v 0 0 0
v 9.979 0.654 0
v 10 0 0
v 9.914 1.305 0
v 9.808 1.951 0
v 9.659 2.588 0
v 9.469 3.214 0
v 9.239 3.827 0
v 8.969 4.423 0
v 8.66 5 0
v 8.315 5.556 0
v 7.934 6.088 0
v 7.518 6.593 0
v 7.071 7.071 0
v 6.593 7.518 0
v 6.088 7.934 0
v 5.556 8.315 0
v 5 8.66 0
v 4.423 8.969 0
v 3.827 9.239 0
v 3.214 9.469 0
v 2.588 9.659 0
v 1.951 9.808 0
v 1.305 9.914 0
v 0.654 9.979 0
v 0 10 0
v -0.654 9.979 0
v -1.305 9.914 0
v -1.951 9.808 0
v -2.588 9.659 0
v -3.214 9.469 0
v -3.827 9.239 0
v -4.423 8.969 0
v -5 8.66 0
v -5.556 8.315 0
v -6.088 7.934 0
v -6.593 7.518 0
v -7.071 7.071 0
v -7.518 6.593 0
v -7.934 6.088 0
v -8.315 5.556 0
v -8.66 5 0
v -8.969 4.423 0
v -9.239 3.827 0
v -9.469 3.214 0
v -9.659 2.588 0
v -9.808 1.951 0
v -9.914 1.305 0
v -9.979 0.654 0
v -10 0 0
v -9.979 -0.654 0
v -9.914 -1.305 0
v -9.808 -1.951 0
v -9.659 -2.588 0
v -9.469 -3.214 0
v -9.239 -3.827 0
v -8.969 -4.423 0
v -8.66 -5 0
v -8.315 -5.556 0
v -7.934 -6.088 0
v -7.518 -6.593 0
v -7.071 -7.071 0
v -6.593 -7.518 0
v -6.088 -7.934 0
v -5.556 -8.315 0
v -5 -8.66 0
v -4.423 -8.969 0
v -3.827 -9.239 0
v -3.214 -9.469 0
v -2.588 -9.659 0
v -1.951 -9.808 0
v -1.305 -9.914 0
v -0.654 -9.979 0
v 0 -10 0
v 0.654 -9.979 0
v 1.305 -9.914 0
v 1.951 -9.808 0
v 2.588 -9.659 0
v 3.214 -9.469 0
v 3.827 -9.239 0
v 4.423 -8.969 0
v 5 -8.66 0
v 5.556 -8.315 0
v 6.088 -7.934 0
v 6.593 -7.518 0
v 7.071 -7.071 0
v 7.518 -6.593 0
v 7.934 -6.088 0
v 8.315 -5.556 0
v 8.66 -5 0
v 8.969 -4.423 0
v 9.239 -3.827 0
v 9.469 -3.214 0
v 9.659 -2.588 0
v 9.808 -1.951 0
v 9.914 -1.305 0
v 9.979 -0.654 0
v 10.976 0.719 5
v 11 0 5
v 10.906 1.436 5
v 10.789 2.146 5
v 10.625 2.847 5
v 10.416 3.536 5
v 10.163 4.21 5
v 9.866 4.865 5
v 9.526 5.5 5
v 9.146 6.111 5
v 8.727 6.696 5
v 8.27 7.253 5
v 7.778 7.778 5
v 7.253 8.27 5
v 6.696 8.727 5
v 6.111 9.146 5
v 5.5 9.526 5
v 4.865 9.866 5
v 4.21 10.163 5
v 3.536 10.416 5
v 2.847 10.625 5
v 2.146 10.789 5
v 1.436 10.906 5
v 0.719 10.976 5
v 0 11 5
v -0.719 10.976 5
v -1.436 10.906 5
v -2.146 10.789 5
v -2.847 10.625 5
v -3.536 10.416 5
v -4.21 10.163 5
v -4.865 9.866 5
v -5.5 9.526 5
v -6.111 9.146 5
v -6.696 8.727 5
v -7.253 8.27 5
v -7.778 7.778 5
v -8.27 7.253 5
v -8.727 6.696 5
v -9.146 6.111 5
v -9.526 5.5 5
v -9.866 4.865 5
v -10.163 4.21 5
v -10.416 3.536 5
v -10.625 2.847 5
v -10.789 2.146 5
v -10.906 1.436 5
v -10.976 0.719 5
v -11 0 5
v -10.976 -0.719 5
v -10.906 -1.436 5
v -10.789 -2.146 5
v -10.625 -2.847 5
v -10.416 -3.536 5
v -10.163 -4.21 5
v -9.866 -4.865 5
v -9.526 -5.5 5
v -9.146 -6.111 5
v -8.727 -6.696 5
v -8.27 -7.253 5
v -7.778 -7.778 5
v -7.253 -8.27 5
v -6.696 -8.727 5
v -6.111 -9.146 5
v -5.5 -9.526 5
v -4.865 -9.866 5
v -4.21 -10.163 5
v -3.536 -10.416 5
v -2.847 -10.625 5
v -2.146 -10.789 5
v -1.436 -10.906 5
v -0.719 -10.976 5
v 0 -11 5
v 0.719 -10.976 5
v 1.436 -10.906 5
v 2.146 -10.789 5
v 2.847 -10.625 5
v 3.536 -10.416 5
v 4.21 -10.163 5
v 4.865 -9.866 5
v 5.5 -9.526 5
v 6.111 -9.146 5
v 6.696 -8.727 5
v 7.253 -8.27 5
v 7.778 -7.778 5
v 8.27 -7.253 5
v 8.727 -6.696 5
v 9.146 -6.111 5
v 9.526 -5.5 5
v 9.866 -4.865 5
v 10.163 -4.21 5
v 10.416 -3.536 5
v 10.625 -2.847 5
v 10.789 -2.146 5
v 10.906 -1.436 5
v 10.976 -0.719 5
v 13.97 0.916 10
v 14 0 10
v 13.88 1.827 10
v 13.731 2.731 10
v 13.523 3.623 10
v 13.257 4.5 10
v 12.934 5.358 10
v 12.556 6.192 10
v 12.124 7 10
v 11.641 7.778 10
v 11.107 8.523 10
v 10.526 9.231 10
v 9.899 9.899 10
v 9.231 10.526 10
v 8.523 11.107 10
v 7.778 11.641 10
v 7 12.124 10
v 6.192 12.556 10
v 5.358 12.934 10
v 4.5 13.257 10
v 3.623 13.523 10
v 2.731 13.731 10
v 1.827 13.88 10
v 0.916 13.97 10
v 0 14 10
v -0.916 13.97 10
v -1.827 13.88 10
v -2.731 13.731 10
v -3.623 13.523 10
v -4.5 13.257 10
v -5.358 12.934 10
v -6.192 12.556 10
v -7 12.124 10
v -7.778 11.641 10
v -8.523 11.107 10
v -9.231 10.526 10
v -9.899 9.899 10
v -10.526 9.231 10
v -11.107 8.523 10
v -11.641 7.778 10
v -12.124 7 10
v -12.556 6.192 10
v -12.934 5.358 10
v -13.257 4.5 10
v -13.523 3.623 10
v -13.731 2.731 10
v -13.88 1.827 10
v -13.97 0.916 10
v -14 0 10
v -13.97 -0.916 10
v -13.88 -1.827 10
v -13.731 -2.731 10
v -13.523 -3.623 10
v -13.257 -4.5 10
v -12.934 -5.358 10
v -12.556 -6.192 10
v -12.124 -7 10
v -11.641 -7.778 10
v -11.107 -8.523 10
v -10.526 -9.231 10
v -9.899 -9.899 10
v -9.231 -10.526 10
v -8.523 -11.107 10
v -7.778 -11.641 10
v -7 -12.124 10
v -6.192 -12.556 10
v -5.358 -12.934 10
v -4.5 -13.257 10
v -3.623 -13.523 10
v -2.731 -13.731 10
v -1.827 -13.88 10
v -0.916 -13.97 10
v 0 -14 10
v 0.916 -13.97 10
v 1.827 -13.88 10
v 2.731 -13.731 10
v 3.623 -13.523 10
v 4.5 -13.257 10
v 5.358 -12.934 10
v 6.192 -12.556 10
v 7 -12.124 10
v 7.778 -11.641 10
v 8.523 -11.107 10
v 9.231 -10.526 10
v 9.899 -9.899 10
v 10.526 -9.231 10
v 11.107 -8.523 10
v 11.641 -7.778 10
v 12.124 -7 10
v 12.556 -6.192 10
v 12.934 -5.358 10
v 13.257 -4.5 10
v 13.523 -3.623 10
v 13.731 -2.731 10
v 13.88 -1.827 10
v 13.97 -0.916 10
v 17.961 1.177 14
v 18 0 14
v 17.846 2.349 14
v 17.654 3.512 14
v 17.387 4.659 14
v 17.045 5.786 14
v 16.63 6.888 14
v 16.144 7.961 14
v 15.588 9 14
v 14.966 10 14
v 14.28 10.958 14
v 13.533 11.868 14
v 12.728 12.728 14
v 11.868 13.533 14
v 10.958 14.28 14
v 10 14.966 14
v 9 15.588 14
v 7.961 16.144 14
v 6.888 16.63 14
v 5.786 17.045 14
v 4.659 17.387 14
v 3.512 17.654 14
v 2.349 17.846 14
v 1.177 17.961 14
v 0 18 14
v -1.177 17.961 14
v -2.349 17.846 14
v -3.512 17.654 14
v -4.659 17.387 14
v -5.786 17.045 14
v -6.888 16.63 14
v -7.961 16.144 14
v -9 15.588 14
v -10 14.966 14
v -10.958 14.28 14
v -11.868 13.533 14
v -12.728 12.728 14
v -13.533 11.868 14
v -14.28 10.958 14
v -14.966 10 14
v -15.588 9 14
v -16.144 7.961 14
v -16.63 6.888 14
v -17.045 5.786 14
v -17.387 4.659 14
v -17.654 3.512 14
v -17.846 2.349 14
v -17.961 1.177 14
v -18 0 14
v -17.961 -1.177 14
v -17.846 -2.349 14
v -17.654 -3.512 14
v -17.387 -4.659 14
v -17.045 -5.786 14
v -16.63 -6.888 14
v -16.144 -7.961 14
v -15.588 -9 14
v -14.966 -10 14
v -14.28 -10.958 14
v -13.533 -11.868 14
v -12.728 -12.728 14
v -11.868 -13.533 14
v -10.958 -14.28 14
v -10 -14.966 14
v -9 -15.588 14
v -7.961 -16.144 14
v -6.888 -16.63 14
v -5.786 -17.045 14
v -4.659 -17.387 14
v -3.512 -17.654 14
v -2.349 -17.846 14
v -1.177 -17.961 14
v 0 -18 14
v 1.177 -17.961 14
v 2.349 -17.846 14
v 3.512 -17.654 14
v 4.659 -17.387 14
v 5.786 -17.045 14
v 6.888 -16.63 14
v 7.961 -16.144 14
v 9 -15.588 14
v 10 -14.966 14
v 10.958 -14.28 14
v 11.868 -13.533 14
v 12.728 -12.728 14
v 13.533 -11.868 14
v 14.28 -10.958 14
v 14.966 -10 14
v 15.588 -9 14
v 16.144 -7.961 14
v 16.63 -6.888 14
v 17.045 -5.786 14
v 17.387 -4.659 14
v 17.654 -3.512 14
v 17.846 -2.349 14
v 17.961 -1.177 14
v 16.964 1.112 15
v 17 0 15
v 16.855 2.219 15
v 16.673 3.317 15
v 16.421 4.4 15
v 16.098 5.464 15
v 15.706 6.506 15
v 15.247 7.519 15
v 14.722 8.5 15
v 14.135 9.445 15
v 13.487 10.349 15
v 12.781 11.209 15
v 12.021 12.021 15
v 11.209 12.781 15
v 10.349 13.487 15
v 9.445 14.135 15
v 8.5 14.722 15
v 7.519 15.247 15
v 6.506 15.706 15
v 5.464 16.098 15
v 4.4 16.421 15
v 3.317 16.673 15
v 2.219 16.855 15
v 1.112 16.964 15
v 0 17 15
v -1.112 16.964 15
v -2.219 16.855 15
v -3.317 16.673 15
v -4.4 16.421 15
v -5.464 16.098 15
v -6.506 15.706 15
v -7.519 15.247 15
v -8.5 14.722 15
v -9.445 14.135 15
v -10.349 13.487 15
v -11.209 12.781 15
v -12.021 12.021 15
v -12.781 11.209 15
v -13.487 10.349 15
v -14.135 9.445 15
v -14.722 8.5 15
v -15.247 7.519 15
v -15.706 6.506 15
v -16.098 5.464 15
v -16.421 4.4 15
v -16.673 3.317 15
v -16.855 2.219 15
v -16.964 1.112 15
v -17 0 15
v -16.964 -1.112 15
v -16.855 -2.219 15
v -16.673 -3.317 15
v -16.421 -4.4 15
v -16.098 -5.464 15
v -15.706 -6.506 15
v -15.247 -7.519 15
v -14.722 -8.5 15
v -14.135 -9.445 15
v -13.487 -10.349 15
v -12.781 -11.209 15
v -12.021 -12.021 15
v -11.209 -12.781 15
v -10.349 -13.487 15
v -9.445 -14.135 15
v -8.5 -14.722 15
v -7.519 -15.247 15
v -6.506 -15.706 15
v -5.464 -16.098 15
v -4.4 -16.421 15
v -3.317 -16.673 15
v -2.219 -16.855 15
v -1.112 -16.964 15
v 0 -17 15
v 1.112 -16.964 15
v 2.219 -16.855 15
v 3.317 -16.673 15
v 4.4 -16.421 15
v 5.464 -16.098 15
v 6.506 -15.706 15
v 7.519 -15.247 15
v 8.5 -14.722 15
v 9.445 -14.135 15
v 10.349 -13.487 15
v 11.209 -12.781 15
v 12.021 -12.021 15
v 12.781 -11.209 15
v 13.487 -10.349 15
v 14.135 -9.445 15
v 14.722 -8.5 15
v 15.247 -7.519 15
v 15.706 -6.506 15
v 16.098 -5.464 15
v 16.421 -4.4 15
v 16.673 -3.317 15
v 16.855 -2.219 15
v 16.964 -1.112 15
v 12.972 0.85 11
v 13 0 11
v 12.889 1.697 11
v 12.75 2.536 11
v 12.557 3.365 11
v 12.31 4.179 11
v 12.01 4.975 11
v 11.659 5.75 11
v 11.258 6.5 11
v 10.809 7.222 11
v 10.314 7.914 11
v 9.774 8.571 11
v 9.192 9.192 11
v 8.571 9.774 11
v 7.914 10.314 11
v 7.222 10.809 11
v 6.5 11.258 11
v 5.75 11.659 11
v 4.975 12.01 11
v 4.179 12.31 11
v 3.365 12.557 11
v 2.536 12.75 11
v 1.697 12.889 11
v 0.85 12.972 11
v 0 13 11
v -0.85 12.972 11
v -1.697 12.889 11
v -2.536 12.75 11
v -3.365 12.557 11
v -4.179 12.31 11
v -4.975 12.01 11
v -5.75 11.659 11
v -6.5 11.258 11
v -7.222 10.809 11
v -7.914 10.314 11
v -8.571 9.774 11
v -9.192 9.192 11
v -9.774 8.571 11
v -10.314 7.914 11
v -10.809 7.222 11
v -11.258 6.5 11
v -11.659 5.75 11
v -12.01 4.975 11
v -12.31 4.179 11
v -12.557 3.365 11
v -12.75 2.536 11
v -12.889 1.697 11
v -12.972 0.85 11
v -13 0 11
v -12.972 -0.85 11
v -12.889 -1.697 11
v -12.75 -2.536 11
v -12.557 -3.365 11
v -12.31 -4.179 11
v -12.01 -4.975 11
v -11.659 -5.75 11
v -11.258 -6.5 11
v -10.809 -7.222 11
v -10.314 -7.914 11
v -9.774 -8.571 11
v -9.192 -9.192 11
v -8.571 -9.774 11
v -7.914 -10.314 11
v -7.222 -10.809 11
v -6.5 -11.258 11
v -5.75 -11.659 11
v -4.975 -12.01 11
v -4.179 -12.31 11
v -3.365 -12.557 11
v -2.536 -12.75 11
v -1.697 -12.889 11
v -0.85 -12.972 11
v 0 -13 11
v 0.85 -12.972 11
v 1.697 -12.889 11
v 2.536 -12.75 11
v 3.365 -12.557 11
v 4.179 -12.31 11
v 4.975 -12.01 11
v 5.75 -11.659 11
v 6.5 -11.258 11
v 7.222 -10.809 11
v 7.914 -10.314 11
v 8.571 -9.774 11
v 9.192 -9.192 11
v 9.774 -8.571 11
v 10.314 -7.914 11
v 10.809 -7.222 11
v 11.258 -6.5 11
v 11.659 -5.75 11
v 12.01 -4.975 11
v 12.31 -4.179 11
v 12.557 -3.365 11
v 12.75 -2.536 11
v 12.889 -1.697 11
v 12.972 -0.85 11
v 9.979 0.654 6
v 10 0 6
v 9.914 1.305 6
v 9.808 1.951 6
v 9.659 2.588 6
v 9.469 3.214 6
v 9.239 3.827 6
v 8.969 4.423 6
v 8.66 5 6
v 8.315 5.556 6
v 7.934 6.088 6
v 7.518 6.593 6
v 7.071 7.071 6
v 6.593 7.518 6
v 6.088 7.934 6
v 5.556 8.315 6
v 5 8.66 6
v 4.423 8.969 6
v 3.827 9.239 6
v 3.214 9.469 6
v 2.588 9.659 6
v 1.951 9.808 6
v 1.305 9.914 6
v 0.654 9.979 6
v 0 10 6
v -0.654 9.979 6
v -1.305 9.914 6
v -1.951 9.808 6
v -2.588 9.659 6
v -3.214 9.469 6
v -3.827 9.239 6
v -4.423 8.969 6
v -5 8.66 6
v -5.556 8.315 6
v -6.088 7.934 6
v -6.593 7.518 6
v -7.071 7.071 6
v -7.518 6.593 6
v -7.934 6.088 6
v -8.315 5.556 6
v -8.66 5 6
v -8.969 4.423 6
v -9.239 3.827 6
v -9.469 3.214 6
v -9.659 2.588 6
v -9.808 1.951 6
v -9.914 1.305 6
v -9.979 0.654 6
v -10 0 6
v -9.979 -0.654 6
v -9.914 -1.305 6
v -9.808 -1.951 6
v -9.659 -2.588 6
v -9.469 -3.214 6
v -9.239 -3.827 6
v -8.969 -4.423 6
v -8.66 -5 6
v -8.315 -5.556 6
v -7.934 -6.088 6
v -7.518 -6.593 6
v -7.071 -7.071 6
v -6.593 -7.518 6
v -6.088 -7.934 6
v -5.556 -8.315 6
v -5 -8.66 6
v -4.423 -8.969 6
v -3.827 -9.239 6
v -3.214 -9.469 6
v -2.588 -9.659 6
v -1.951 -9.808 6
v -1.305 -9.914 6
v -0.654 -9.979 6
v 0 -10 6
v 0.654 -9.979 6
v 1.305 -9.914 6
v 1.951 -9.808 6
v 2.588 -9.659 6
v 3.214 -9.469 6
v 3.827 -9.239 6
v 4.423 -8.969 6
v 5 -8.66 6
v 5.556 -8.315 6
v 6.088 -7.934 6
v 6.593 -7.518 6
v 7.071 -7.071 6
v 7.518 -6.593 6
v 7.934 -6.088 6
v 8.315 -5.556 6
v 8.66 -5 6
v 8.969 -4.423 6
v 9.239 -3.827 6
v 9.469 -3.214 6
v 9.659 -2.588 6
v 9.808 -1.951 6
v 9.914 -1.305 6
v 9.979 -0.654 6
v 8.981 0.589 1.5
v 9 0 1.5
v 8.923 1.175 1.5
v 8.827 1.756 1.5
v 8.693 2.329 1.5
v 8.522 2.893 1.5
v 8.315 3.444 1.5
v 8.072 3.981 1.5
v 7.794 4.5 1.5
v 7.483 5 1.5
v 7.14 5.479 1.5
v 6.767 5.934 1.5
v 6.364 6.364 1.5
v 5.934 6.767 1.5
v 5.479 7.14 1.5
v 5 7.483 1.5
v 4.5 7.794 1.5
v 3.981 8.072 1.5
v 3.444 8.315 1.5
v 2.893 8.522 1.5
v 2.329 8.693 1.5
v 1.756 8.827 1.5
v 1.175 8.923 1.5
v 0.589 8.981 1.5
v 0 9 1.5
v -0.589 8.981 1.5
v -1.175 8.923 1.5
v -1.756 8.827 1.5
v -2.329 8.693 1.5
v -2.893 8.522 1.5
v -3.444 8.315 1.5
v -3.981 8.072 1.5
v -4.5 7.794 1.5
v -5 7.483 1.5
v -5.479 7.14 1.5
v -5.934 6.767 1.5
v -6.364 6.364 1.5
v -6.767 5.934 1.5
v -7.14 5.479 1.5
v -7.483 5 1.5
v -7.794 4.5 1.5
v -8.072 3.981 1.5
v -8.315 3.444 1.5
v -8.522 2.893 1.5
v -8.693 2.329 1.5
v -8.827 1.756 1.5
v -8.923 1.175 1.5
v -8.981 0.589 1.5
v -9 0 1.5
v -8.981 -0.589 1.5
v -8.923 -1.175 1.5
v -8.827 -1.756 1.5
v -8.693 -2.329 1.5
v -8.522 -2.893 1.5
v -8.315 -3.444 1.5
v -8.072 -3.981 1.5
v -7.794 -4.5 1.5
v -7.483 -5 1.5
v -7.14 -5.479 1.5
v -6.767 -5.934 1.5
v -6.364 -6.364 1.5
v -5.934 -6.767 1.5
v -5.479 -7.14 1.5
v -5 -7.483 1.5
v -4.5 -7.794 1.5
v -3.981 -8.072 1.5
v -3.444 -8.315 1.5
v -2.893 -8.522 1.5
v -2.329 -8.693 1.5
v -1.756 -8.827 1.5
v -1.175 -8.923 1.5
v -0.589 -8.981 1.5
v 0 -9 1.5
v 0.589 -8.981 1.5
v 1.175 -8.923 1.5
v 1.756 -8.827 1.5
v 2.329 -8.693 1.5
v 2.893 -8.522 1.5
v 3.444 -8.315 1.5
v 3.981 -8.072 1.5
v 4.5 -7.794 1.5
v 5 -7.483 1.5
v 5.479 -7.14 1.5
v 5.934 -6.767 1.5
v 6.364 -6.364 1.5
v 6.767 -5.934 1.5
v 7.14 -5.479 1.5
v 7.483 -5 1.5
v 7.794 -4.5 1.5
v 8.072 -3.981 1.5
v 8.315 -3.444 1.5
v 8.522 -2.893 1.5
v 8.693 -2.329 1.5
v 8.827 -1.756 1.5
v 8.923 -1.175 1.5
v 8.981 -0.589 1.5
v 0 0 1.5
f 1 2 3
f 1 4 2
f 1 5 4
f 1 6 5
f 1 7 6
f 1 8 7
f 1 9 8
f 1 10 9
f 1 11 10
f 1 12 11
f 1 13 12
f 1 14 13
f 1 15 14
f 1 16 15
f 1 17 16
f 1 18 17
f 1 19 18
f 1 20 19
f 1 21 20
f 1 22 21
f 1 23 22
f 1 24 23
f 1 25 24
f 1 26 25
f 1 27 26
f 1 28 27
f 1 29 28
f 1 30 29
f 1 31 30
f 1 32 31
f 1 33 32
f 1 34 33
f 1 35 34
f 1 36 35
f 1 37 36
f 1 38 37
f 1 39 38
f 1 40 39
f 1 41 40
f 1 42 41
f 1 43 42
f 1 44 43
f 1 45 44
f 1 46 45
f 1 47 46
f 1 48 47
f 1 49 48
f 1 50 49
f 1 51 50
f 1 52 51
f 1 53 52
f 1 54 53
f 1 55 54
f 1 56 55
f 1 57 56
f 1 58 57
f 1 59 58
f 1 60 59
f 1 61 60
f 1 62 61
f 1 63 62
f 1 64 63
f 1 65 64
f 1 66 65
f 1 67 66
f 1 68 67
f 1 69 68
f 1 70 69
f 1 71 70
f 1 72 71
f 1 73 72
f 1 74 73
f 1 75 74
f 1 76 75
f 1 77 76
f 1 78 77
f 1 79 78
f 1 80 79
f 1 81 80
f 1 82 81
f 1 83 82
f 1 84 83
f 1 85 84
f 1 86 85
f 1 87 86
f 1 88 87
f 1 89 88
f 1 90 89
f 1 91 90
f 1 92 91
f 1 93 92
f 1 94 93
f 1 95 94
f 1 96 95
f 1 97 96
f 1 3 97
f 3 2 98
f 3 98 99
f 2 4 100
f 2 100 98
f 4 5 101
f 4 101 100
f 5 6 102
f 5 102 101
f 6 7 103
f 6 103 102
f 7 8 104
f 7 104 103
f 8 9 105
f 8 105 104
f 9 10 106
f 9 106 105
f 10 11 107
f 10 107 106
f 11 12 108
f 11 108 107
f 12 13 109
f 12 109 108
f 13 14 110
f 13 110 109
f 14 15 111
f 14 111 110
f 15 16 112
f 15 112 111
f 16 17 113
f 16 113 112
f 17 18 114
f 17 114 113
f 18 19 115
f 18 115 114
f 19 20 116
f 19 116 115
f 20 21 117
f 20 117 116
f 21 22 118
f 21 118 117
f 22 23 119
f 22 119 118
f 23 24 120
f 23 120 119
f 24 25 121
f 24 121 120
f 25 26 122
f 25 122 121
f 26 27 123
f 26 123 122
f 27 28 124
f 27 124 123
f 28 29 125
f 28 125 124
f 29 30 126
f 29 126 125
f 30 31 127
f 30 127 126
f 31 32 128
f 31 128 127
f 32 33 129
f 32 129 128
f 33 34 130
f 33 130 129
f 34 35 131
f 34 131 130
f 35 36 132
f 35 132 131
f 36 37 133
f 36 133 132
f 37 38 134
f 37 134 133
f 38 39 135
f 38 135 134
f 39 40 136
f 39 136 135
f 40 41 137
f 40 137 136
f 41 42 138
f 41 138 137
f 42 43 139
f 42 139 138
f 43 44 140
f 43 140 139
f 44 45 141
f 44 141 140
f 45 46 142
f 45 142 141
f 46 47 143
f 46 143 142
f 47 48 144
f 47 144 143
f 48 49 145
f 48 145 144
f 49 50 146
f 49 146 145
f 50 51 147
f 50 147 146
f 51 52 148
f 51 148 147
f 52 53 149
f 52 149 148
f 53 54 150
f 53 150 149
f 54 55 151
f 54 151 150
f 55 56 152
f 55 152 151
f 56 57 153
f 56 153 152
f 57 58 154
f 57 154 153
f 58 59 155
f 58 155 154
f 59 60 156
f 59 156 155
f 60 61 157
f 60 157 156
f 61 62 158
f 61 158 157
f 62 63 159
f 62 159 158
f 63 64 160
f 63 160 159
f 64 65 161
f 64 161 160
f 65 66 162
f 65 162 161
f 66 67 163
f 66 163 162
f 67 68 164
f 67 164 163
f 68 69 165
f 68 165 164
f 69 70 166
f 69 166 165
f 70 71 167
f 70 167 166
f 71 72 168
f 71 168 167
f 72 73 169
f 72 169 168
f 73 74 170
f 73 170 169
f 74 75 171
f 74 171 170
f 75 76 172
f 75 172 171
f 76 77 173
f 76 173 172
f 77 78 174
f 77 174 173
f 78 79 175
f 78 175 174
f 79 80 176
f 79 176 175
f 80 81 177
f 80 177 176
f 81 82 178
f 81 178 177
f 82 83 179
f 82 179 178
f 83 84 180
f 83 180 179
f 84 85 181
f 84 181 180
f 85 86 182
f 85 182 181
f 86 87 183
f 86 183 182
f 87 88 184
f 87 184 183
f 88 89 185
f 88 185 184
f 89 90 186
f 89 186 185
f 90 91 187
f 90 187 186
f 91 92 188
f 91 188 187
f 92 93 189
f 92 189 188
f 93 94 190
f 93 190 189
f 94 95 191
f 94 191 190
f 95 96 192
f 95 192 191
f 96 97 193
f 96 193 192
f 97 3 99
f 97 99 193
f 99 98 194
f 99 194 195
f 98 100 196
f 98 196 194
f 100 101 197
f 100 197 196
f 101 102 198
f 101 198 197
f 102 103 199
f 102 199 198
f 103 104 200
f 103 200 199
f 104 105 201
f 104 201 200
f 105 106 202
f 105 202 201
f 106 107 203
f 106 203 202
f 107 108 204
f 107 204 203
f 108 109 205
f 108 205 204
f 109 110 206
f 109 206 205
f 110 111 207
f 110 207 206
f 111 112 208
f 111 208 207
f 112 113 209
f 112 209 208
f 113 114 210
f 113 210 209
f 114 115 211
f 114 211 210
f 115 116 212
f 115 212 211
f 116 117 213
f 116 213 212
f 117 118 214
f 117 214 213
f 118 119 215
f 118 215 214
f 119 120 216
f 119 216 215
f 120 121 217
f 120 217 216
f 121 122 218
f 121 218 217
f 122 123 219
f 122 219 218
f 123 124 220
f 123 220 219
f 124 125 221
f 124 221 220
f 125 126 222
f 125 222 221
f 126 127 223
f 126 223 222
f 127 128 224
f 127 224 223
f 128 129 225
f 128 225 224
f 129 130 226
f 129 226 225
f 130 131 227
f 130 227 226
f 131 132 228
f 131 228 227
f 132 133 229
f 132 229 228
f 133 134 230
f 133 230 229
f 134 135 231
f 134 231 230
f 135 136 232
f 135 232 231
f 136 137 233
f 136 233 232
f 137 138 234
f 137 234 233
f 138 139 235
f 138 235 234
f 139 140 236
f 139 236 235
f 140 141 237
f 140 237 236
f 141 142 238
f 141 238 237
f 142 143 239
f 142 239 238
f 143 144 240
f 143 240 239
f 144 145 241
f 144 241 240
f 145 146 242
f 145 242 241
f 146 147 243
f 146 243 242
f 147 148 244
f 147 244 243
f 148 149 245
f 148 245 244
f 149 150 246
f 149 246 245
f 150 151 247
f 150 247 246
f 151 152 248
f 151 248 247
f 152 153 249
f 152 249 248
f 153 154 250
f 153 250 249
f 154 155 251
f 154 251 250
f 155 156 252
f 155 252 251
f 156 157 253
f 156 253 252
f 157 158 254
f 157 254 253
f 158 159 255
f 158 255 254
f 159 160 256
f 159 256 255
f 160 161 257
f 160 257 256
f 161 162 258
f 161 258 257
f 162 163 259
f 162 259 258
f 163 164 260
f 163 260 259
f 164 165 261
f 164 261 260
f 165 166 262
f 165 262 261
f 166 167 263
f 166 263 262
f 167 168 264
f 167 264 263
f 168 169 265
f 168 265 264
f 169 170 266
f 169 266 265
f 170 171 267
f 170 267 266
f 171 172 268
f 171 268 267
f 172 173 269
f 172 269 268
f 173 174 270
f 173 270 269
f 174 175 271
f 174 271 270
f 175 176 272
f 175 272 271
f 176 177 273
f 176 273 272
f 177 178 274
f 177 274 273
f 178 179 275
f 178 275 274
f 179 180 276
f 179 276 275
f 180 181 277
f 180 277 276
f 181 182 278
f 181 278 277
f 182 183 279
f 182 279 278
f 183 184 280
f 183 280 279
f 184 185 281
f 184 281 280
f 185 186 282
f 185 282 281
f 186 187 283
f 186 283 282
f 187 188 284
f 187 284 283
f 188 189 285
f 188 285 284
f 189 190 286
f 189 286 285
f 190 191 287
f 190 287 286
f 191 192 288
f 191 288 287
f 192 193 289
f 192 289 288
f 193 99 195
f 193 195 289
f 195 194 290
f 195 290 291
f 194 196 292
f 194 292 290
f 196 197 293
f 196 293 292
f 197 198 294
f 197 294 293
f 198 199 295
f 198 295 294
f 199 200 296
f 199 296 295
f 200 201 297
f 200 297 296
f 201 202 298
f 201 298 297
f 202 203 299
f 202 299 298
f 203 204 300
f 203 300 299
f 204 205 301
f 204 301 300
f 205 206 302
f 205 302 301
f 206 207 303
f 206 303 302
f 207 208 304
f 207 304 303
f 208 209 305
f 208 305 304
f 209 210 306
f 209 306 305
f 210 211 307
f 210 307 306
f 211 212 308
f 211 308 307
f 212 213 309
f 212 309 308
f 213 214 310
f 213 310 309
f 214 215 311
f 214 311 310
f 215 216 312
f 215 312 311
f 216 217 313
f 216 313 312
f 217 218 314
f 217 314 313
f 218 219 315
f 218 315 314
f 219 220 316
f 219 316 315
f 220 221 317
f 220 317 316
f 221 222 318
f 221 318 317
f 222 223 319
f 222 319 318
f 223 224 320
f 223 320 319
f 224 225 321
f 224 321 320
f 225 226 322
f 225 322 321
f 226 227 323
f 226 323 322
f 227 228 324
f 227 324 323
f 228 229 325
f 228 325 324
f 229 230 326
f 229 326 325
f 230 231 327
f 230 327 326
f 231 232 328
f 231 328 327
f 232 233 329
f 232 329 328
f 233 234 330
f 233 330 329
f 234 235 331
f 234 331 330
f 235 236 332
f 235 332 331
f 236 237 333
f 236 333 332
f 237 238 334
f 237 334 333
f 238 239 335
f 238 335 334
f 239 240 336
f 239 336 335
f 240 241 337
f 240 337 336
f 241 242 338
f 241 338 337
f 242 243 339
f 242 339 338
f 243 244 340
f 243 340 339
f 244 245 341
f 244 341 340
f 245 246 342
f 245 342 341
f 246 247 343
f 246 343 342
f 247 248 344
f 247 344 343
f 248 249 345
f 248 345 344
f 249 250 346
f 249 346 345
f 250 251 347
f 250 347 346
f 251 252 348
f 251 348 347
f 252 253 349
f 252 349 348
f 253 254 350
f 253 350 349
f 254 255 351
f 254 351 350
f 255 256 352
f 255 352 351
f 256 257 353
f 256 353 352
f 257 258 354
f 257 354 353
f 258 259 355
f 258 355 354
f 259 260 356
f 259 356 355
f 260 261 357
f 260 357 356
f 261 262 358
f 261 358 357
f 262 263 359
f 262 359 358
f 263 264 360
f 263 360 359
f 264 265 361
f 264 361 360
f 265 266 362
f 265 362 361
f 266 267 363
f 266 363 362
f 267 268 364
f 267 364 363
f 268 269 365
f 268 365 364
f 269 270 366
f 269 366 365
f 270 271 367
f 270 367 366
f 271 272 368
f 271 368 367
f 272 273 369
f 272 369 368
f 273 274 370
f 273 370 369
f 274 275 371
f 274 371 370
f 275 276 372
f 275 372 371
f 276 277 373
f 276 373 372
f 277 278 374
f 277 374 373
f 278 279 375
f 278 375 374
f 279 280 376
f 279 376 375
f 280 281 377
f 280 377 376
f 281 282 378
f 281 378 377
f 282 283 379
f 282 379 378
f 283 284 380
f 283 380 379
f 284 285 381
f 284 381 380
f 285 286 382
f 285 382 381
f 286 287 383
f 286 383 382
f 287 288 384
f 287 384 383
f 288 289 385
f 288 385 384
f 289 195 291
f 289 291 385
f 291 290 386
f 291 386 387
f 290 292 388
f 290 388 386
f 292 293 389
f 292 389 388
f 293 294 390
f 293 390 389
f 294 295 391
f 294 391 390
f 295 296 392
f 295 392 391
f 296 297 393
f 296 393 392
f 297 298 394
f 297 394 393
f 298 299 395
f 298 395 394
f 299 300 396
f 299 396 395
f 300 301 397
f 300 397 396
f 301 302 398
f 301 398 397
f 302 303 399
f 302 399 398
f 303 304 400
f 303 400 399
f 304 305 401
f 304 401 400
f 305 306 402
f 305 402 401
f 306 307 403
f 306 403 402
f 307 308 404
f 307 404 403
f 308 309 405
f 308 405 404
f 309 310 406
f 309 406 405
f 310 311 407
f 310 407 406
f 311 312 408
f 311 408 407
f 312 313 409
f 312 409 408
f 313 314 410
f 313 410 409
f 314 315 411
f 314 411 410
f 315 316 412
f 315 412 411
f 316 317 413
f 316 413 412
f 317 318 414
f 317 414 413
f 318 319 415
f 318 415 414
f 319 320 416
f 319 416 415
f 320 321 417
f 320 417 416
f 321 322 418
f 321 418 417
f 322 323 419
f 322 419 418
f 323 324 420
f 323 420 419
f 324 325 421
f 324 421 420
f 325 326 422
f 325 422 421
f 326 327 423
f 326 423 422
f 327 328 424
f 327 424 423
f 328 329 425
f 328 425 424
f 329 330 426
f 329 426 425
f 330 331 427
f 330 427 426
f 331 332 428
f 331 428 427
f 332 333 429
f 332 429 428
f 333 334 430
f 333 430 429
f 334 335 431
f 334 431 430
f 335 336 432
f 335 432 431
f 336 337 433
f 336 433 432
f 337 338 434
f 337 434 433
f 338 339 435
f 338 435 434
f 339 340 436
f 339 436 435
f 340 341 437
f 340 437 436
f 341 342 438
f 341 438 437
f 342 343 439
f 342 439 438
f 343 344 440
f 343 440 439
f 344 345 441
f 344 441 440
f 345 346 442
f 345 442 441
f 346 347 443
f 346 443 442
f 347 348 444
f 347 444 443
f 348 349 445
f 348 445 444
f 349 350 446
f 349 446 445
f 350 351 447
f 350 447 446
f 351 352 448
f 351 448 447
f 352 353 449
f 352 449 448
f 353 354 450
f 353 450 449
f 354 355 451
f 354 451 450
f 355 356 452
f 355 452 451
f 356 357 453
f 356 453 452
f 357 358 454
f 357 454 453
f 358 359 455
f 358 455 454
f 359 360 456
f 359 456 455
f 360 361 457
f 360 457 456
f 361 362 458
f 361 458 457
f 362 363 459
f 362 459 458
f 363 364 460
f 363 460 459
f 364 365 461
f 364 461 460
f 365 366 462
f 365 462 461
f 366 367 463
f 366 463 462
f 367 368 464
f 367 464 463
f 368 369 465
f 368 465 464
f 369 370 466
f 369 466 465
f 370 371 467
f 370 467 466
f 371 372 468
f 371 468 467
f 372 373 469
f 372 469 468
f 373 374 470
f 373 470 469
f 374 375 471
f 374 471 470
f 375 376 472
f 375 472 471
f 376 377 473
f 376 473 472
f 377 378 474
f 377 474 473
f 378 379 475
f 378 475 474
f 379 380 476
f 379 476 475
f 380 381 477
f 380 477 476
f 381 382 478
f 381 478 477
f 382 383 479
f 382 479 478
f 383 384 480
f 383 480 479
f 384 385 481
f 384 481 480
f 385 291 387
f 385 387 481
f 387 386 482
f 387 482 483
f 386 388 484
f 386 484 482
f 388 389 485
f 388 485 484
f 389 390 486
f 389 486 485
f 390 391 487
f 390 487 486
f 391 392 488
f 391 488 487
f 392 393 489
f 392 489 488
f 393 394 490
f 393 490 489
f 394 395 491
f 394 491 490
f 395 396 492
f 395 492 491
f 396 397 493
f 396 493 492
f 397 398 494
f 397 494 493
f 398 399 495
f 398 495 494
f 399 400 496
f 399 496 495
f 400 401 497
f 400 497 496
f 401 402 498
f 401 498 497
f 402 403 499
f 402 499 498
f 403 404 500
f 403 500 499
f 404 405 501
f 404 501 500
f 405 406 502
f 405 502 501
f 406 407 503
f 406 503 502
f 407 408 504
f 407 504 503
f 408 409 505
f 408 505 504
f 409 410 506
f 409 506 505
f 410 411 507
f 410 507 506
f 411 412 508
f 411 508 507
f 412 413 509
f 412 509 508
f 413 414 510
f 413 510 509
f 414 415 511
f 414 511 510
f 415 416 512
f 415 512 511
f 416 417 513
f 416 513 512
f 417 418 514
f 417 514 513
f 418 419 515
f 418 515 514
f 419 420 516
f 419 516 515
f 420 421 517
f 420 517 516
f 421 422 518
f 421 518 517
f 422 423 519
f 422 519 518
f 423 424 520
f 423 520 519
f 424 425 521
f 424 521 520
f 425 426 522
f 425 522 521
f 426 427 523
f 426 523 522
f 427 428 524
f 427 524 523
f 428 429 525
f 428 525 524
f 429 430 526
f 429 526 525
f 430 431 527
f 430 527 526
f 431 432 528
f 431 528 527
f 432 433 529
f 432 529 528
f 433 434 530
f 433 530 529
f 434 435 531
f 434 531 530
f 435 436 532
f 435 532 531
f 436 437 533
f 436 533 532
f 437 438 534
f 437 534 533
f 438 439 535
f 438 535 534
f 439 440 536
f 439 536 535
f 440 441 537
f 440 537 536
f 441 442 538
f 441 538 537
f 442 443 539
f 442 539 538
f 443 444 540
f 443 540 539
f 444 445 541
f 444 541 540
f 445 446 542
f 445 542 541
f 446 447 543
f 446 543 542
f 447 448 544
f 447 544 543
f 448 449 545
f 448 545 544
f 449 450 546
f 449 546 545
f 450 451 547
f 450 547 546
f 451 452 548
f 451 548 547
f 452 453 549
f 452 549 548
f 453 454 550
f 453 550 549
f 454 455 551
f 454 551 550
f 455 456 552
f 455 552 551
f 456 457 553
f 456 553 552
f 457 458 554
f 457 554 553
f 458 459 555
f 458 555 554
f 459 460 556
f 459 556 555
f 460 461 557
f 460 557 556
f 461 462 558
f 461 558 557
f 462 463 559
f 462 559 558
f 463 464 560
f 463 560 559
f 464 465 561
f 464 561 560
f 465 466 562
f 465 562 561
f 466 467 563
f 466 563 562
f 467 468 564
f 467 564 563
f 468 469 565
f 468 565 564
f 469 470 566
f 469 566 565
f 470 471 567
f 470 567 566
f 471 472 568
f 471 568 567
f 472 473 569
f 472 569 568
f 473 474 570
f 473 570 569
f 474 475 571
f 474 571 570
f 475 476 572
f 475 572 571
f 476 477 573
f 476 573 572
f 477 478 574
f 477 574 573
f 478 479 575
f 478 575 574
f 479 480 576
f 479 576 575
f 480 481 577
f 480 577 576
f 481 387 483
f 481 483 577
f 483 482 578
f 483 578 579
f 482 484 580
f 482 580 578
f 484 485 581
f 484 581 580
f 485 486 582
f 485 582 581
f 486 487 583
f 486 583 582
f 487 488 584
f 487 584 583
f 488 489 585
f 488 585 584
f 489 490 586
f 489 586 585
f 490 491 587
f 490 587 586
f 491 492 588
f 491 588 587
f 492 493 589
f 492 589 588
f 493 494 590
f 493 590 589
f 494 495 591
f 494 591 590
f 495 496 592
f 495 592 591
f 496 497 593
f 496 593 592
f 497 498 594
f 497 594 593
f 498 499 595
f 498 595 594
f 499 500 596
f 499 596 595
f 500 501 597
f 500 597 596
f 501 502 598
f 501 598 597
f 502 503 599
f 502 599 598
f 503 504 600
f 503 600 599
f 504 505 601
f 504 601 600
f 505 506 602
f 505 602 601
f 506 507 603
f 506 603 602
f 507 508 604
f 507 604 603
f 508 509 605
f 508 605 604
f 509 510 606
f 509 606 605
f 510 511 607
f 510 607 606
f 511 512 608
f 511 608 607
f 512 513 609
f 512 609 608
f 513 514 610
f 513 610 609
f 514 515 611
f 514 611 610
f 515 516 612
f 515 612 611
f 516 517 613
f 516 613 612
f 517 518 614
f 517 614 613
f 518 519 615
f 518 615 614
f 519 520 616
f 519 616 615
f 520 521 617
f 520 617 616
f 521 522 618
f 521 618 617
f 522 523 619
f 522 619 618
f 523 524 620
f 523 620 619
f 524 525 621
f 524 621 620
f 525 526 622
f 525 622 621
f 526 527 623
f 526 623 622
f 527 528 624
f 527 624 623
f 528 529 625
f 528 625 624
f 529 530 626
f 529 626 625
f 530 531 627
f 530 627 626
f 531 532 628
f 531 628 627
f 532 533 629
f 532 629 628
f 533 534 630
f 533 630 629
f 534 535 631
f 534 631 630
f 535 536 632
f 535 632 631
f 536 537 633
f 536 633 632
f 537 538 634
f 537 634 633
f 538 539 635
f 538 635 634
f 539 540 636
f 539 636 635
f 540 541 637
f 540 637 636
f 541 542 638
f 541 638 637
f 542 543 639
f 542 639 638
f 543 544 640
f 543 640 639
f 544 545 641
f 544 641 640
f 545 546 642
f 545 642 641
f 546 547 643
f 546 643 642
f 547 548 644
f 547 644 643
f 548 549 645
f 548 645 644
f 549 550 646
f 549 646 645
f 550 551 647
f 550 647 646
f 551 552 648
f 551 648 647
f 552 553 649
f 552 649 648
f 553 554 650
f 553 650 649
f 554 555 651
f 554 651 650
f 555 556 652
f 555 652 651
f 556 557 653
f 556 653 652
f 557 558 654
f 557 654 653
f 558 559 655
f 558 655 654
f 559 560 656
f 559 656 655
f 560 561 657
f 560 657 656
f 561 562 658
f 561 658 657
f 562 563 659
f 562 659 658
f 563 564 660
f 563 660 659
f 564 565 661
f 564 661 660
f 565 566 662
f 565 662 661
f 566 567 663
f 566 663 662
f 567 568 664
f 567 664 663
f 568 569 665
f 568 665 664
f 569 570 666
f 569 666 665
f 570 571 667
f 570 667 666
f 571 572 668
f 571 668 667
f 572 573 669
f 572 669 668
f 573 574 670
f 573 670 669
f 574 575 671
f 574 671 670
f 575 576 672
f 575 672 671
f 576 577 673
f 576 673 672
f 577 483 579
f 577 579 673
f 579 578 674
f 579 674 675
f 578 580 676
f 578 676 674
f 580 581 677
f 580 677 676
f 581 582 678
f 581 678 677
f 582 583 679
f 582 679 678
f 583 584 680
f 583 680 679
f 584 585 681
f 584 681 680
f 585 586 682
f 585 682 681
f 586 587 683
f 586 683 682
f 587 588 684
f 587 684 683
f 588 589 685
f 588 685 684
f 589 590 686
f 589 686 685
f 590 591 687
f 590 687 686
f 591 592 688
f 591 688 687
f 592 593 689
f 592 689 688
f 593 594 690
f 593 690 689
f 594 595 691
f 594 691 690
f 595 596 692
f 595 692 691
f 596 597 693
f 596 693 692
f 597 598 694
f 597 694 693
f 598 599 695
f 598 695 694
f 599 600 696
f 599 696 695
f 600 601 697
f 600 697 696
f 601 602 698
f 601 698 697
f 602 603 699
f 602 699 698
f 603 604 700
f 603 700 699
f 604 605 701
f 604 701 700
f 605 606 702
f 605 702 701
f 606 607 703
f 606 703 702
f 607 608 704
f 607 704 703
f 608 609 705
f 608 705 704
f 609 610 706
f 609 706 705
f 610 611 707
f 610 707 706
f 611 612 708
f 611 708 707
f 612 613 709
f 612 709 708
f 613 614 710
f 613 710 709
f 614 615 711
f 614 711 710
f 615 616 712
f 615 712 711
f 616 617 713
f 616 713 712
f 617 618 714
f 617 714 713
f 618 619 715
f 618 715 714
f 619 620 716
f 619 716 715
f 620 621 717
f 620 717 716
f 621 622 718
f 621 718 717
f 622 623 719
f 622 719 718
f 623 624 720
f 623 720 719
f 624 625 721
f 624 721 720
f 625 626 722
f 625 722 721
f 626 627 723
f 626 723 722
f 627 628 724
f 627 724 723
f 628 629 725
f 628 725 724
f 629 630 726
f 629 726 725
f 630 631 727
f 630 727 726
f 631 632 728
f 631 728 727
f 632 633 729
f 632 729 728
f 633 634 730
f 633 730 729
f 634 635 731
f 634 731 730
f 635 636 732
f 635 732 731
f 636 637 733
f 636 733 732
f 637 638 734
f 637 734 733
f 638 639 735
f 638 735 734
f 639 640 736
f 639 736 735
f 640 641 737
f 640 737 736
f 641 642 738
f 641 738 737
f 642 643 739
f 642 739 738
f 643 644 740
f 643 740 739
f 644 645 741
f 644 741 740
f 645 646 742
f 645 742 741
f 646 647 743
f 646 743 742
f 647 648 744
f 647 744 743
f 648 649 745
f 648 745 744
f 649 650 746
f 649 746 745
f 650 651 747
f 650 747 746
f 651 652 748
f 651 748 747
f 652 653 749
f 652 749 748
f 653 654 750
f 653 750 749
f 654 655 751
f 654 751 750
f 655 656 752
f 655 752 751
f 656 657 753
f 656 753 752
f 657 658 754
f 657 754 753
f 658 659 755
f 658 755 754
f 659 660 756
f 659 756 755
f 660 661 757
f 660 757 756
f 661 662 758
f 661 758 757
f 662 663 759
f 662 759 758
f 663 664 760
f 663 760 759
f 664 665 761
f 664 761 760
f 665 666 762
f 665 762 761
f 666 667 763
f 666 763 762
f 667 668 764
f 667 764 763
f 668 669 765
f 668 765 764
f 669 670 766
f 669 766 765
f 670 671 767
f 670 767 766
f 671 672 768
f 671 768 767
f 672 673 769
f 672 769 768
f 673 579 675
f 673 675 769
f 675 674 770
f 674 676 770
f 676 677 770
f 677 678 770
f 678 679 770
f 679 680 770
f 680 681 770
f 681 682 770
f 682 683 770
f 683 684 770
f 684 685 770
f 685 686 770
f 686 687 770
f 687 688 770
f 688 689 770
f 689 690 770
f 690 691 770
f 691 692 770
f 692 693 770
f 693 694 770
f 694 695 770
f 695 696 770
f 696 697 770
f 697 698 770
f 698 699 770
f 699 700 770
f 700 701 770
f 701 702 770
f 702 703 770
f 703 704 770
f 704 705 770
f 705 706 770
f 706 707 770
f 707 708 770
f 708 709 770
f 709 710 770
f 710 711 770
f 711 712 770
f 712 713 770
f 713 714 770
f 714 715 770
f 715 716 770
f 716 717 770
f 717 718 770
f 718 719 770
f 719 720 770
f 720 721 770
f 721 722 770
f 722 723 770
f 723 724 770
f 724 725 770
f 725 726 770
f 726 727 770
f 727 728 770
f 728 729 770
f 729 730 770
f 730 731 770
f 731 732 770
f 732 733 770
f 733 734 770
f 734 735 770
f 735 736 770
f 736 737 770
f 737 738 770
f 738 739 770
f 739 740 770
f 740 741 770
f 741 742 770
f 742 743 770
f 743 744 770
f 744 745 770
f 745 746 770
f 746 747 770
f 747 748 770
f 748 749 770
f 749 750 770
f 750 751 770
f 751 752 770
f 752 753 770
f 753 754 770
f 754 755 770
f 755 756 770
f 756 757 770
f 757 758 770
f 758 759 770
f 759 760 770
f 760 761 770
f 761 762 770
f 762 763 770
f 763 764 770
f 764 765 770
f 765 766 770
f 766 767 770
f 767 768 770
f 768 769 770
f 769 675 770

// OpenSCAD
// Original MechIntel educational model. CC0-1.0. Units: mm.
// Not a standardized or load-rated component.
$fn=96;
// Section points: [radius, height], mm. Edit to change the profile.
section=[[0, 0], [10, 0], [11, 5], [14, 10], [18, 14], [17, 15], [13, 11], [10, 6], [9, 1.5], [0, 1.5]];
rotate_extrude($fn=96) polygon(points=section);
